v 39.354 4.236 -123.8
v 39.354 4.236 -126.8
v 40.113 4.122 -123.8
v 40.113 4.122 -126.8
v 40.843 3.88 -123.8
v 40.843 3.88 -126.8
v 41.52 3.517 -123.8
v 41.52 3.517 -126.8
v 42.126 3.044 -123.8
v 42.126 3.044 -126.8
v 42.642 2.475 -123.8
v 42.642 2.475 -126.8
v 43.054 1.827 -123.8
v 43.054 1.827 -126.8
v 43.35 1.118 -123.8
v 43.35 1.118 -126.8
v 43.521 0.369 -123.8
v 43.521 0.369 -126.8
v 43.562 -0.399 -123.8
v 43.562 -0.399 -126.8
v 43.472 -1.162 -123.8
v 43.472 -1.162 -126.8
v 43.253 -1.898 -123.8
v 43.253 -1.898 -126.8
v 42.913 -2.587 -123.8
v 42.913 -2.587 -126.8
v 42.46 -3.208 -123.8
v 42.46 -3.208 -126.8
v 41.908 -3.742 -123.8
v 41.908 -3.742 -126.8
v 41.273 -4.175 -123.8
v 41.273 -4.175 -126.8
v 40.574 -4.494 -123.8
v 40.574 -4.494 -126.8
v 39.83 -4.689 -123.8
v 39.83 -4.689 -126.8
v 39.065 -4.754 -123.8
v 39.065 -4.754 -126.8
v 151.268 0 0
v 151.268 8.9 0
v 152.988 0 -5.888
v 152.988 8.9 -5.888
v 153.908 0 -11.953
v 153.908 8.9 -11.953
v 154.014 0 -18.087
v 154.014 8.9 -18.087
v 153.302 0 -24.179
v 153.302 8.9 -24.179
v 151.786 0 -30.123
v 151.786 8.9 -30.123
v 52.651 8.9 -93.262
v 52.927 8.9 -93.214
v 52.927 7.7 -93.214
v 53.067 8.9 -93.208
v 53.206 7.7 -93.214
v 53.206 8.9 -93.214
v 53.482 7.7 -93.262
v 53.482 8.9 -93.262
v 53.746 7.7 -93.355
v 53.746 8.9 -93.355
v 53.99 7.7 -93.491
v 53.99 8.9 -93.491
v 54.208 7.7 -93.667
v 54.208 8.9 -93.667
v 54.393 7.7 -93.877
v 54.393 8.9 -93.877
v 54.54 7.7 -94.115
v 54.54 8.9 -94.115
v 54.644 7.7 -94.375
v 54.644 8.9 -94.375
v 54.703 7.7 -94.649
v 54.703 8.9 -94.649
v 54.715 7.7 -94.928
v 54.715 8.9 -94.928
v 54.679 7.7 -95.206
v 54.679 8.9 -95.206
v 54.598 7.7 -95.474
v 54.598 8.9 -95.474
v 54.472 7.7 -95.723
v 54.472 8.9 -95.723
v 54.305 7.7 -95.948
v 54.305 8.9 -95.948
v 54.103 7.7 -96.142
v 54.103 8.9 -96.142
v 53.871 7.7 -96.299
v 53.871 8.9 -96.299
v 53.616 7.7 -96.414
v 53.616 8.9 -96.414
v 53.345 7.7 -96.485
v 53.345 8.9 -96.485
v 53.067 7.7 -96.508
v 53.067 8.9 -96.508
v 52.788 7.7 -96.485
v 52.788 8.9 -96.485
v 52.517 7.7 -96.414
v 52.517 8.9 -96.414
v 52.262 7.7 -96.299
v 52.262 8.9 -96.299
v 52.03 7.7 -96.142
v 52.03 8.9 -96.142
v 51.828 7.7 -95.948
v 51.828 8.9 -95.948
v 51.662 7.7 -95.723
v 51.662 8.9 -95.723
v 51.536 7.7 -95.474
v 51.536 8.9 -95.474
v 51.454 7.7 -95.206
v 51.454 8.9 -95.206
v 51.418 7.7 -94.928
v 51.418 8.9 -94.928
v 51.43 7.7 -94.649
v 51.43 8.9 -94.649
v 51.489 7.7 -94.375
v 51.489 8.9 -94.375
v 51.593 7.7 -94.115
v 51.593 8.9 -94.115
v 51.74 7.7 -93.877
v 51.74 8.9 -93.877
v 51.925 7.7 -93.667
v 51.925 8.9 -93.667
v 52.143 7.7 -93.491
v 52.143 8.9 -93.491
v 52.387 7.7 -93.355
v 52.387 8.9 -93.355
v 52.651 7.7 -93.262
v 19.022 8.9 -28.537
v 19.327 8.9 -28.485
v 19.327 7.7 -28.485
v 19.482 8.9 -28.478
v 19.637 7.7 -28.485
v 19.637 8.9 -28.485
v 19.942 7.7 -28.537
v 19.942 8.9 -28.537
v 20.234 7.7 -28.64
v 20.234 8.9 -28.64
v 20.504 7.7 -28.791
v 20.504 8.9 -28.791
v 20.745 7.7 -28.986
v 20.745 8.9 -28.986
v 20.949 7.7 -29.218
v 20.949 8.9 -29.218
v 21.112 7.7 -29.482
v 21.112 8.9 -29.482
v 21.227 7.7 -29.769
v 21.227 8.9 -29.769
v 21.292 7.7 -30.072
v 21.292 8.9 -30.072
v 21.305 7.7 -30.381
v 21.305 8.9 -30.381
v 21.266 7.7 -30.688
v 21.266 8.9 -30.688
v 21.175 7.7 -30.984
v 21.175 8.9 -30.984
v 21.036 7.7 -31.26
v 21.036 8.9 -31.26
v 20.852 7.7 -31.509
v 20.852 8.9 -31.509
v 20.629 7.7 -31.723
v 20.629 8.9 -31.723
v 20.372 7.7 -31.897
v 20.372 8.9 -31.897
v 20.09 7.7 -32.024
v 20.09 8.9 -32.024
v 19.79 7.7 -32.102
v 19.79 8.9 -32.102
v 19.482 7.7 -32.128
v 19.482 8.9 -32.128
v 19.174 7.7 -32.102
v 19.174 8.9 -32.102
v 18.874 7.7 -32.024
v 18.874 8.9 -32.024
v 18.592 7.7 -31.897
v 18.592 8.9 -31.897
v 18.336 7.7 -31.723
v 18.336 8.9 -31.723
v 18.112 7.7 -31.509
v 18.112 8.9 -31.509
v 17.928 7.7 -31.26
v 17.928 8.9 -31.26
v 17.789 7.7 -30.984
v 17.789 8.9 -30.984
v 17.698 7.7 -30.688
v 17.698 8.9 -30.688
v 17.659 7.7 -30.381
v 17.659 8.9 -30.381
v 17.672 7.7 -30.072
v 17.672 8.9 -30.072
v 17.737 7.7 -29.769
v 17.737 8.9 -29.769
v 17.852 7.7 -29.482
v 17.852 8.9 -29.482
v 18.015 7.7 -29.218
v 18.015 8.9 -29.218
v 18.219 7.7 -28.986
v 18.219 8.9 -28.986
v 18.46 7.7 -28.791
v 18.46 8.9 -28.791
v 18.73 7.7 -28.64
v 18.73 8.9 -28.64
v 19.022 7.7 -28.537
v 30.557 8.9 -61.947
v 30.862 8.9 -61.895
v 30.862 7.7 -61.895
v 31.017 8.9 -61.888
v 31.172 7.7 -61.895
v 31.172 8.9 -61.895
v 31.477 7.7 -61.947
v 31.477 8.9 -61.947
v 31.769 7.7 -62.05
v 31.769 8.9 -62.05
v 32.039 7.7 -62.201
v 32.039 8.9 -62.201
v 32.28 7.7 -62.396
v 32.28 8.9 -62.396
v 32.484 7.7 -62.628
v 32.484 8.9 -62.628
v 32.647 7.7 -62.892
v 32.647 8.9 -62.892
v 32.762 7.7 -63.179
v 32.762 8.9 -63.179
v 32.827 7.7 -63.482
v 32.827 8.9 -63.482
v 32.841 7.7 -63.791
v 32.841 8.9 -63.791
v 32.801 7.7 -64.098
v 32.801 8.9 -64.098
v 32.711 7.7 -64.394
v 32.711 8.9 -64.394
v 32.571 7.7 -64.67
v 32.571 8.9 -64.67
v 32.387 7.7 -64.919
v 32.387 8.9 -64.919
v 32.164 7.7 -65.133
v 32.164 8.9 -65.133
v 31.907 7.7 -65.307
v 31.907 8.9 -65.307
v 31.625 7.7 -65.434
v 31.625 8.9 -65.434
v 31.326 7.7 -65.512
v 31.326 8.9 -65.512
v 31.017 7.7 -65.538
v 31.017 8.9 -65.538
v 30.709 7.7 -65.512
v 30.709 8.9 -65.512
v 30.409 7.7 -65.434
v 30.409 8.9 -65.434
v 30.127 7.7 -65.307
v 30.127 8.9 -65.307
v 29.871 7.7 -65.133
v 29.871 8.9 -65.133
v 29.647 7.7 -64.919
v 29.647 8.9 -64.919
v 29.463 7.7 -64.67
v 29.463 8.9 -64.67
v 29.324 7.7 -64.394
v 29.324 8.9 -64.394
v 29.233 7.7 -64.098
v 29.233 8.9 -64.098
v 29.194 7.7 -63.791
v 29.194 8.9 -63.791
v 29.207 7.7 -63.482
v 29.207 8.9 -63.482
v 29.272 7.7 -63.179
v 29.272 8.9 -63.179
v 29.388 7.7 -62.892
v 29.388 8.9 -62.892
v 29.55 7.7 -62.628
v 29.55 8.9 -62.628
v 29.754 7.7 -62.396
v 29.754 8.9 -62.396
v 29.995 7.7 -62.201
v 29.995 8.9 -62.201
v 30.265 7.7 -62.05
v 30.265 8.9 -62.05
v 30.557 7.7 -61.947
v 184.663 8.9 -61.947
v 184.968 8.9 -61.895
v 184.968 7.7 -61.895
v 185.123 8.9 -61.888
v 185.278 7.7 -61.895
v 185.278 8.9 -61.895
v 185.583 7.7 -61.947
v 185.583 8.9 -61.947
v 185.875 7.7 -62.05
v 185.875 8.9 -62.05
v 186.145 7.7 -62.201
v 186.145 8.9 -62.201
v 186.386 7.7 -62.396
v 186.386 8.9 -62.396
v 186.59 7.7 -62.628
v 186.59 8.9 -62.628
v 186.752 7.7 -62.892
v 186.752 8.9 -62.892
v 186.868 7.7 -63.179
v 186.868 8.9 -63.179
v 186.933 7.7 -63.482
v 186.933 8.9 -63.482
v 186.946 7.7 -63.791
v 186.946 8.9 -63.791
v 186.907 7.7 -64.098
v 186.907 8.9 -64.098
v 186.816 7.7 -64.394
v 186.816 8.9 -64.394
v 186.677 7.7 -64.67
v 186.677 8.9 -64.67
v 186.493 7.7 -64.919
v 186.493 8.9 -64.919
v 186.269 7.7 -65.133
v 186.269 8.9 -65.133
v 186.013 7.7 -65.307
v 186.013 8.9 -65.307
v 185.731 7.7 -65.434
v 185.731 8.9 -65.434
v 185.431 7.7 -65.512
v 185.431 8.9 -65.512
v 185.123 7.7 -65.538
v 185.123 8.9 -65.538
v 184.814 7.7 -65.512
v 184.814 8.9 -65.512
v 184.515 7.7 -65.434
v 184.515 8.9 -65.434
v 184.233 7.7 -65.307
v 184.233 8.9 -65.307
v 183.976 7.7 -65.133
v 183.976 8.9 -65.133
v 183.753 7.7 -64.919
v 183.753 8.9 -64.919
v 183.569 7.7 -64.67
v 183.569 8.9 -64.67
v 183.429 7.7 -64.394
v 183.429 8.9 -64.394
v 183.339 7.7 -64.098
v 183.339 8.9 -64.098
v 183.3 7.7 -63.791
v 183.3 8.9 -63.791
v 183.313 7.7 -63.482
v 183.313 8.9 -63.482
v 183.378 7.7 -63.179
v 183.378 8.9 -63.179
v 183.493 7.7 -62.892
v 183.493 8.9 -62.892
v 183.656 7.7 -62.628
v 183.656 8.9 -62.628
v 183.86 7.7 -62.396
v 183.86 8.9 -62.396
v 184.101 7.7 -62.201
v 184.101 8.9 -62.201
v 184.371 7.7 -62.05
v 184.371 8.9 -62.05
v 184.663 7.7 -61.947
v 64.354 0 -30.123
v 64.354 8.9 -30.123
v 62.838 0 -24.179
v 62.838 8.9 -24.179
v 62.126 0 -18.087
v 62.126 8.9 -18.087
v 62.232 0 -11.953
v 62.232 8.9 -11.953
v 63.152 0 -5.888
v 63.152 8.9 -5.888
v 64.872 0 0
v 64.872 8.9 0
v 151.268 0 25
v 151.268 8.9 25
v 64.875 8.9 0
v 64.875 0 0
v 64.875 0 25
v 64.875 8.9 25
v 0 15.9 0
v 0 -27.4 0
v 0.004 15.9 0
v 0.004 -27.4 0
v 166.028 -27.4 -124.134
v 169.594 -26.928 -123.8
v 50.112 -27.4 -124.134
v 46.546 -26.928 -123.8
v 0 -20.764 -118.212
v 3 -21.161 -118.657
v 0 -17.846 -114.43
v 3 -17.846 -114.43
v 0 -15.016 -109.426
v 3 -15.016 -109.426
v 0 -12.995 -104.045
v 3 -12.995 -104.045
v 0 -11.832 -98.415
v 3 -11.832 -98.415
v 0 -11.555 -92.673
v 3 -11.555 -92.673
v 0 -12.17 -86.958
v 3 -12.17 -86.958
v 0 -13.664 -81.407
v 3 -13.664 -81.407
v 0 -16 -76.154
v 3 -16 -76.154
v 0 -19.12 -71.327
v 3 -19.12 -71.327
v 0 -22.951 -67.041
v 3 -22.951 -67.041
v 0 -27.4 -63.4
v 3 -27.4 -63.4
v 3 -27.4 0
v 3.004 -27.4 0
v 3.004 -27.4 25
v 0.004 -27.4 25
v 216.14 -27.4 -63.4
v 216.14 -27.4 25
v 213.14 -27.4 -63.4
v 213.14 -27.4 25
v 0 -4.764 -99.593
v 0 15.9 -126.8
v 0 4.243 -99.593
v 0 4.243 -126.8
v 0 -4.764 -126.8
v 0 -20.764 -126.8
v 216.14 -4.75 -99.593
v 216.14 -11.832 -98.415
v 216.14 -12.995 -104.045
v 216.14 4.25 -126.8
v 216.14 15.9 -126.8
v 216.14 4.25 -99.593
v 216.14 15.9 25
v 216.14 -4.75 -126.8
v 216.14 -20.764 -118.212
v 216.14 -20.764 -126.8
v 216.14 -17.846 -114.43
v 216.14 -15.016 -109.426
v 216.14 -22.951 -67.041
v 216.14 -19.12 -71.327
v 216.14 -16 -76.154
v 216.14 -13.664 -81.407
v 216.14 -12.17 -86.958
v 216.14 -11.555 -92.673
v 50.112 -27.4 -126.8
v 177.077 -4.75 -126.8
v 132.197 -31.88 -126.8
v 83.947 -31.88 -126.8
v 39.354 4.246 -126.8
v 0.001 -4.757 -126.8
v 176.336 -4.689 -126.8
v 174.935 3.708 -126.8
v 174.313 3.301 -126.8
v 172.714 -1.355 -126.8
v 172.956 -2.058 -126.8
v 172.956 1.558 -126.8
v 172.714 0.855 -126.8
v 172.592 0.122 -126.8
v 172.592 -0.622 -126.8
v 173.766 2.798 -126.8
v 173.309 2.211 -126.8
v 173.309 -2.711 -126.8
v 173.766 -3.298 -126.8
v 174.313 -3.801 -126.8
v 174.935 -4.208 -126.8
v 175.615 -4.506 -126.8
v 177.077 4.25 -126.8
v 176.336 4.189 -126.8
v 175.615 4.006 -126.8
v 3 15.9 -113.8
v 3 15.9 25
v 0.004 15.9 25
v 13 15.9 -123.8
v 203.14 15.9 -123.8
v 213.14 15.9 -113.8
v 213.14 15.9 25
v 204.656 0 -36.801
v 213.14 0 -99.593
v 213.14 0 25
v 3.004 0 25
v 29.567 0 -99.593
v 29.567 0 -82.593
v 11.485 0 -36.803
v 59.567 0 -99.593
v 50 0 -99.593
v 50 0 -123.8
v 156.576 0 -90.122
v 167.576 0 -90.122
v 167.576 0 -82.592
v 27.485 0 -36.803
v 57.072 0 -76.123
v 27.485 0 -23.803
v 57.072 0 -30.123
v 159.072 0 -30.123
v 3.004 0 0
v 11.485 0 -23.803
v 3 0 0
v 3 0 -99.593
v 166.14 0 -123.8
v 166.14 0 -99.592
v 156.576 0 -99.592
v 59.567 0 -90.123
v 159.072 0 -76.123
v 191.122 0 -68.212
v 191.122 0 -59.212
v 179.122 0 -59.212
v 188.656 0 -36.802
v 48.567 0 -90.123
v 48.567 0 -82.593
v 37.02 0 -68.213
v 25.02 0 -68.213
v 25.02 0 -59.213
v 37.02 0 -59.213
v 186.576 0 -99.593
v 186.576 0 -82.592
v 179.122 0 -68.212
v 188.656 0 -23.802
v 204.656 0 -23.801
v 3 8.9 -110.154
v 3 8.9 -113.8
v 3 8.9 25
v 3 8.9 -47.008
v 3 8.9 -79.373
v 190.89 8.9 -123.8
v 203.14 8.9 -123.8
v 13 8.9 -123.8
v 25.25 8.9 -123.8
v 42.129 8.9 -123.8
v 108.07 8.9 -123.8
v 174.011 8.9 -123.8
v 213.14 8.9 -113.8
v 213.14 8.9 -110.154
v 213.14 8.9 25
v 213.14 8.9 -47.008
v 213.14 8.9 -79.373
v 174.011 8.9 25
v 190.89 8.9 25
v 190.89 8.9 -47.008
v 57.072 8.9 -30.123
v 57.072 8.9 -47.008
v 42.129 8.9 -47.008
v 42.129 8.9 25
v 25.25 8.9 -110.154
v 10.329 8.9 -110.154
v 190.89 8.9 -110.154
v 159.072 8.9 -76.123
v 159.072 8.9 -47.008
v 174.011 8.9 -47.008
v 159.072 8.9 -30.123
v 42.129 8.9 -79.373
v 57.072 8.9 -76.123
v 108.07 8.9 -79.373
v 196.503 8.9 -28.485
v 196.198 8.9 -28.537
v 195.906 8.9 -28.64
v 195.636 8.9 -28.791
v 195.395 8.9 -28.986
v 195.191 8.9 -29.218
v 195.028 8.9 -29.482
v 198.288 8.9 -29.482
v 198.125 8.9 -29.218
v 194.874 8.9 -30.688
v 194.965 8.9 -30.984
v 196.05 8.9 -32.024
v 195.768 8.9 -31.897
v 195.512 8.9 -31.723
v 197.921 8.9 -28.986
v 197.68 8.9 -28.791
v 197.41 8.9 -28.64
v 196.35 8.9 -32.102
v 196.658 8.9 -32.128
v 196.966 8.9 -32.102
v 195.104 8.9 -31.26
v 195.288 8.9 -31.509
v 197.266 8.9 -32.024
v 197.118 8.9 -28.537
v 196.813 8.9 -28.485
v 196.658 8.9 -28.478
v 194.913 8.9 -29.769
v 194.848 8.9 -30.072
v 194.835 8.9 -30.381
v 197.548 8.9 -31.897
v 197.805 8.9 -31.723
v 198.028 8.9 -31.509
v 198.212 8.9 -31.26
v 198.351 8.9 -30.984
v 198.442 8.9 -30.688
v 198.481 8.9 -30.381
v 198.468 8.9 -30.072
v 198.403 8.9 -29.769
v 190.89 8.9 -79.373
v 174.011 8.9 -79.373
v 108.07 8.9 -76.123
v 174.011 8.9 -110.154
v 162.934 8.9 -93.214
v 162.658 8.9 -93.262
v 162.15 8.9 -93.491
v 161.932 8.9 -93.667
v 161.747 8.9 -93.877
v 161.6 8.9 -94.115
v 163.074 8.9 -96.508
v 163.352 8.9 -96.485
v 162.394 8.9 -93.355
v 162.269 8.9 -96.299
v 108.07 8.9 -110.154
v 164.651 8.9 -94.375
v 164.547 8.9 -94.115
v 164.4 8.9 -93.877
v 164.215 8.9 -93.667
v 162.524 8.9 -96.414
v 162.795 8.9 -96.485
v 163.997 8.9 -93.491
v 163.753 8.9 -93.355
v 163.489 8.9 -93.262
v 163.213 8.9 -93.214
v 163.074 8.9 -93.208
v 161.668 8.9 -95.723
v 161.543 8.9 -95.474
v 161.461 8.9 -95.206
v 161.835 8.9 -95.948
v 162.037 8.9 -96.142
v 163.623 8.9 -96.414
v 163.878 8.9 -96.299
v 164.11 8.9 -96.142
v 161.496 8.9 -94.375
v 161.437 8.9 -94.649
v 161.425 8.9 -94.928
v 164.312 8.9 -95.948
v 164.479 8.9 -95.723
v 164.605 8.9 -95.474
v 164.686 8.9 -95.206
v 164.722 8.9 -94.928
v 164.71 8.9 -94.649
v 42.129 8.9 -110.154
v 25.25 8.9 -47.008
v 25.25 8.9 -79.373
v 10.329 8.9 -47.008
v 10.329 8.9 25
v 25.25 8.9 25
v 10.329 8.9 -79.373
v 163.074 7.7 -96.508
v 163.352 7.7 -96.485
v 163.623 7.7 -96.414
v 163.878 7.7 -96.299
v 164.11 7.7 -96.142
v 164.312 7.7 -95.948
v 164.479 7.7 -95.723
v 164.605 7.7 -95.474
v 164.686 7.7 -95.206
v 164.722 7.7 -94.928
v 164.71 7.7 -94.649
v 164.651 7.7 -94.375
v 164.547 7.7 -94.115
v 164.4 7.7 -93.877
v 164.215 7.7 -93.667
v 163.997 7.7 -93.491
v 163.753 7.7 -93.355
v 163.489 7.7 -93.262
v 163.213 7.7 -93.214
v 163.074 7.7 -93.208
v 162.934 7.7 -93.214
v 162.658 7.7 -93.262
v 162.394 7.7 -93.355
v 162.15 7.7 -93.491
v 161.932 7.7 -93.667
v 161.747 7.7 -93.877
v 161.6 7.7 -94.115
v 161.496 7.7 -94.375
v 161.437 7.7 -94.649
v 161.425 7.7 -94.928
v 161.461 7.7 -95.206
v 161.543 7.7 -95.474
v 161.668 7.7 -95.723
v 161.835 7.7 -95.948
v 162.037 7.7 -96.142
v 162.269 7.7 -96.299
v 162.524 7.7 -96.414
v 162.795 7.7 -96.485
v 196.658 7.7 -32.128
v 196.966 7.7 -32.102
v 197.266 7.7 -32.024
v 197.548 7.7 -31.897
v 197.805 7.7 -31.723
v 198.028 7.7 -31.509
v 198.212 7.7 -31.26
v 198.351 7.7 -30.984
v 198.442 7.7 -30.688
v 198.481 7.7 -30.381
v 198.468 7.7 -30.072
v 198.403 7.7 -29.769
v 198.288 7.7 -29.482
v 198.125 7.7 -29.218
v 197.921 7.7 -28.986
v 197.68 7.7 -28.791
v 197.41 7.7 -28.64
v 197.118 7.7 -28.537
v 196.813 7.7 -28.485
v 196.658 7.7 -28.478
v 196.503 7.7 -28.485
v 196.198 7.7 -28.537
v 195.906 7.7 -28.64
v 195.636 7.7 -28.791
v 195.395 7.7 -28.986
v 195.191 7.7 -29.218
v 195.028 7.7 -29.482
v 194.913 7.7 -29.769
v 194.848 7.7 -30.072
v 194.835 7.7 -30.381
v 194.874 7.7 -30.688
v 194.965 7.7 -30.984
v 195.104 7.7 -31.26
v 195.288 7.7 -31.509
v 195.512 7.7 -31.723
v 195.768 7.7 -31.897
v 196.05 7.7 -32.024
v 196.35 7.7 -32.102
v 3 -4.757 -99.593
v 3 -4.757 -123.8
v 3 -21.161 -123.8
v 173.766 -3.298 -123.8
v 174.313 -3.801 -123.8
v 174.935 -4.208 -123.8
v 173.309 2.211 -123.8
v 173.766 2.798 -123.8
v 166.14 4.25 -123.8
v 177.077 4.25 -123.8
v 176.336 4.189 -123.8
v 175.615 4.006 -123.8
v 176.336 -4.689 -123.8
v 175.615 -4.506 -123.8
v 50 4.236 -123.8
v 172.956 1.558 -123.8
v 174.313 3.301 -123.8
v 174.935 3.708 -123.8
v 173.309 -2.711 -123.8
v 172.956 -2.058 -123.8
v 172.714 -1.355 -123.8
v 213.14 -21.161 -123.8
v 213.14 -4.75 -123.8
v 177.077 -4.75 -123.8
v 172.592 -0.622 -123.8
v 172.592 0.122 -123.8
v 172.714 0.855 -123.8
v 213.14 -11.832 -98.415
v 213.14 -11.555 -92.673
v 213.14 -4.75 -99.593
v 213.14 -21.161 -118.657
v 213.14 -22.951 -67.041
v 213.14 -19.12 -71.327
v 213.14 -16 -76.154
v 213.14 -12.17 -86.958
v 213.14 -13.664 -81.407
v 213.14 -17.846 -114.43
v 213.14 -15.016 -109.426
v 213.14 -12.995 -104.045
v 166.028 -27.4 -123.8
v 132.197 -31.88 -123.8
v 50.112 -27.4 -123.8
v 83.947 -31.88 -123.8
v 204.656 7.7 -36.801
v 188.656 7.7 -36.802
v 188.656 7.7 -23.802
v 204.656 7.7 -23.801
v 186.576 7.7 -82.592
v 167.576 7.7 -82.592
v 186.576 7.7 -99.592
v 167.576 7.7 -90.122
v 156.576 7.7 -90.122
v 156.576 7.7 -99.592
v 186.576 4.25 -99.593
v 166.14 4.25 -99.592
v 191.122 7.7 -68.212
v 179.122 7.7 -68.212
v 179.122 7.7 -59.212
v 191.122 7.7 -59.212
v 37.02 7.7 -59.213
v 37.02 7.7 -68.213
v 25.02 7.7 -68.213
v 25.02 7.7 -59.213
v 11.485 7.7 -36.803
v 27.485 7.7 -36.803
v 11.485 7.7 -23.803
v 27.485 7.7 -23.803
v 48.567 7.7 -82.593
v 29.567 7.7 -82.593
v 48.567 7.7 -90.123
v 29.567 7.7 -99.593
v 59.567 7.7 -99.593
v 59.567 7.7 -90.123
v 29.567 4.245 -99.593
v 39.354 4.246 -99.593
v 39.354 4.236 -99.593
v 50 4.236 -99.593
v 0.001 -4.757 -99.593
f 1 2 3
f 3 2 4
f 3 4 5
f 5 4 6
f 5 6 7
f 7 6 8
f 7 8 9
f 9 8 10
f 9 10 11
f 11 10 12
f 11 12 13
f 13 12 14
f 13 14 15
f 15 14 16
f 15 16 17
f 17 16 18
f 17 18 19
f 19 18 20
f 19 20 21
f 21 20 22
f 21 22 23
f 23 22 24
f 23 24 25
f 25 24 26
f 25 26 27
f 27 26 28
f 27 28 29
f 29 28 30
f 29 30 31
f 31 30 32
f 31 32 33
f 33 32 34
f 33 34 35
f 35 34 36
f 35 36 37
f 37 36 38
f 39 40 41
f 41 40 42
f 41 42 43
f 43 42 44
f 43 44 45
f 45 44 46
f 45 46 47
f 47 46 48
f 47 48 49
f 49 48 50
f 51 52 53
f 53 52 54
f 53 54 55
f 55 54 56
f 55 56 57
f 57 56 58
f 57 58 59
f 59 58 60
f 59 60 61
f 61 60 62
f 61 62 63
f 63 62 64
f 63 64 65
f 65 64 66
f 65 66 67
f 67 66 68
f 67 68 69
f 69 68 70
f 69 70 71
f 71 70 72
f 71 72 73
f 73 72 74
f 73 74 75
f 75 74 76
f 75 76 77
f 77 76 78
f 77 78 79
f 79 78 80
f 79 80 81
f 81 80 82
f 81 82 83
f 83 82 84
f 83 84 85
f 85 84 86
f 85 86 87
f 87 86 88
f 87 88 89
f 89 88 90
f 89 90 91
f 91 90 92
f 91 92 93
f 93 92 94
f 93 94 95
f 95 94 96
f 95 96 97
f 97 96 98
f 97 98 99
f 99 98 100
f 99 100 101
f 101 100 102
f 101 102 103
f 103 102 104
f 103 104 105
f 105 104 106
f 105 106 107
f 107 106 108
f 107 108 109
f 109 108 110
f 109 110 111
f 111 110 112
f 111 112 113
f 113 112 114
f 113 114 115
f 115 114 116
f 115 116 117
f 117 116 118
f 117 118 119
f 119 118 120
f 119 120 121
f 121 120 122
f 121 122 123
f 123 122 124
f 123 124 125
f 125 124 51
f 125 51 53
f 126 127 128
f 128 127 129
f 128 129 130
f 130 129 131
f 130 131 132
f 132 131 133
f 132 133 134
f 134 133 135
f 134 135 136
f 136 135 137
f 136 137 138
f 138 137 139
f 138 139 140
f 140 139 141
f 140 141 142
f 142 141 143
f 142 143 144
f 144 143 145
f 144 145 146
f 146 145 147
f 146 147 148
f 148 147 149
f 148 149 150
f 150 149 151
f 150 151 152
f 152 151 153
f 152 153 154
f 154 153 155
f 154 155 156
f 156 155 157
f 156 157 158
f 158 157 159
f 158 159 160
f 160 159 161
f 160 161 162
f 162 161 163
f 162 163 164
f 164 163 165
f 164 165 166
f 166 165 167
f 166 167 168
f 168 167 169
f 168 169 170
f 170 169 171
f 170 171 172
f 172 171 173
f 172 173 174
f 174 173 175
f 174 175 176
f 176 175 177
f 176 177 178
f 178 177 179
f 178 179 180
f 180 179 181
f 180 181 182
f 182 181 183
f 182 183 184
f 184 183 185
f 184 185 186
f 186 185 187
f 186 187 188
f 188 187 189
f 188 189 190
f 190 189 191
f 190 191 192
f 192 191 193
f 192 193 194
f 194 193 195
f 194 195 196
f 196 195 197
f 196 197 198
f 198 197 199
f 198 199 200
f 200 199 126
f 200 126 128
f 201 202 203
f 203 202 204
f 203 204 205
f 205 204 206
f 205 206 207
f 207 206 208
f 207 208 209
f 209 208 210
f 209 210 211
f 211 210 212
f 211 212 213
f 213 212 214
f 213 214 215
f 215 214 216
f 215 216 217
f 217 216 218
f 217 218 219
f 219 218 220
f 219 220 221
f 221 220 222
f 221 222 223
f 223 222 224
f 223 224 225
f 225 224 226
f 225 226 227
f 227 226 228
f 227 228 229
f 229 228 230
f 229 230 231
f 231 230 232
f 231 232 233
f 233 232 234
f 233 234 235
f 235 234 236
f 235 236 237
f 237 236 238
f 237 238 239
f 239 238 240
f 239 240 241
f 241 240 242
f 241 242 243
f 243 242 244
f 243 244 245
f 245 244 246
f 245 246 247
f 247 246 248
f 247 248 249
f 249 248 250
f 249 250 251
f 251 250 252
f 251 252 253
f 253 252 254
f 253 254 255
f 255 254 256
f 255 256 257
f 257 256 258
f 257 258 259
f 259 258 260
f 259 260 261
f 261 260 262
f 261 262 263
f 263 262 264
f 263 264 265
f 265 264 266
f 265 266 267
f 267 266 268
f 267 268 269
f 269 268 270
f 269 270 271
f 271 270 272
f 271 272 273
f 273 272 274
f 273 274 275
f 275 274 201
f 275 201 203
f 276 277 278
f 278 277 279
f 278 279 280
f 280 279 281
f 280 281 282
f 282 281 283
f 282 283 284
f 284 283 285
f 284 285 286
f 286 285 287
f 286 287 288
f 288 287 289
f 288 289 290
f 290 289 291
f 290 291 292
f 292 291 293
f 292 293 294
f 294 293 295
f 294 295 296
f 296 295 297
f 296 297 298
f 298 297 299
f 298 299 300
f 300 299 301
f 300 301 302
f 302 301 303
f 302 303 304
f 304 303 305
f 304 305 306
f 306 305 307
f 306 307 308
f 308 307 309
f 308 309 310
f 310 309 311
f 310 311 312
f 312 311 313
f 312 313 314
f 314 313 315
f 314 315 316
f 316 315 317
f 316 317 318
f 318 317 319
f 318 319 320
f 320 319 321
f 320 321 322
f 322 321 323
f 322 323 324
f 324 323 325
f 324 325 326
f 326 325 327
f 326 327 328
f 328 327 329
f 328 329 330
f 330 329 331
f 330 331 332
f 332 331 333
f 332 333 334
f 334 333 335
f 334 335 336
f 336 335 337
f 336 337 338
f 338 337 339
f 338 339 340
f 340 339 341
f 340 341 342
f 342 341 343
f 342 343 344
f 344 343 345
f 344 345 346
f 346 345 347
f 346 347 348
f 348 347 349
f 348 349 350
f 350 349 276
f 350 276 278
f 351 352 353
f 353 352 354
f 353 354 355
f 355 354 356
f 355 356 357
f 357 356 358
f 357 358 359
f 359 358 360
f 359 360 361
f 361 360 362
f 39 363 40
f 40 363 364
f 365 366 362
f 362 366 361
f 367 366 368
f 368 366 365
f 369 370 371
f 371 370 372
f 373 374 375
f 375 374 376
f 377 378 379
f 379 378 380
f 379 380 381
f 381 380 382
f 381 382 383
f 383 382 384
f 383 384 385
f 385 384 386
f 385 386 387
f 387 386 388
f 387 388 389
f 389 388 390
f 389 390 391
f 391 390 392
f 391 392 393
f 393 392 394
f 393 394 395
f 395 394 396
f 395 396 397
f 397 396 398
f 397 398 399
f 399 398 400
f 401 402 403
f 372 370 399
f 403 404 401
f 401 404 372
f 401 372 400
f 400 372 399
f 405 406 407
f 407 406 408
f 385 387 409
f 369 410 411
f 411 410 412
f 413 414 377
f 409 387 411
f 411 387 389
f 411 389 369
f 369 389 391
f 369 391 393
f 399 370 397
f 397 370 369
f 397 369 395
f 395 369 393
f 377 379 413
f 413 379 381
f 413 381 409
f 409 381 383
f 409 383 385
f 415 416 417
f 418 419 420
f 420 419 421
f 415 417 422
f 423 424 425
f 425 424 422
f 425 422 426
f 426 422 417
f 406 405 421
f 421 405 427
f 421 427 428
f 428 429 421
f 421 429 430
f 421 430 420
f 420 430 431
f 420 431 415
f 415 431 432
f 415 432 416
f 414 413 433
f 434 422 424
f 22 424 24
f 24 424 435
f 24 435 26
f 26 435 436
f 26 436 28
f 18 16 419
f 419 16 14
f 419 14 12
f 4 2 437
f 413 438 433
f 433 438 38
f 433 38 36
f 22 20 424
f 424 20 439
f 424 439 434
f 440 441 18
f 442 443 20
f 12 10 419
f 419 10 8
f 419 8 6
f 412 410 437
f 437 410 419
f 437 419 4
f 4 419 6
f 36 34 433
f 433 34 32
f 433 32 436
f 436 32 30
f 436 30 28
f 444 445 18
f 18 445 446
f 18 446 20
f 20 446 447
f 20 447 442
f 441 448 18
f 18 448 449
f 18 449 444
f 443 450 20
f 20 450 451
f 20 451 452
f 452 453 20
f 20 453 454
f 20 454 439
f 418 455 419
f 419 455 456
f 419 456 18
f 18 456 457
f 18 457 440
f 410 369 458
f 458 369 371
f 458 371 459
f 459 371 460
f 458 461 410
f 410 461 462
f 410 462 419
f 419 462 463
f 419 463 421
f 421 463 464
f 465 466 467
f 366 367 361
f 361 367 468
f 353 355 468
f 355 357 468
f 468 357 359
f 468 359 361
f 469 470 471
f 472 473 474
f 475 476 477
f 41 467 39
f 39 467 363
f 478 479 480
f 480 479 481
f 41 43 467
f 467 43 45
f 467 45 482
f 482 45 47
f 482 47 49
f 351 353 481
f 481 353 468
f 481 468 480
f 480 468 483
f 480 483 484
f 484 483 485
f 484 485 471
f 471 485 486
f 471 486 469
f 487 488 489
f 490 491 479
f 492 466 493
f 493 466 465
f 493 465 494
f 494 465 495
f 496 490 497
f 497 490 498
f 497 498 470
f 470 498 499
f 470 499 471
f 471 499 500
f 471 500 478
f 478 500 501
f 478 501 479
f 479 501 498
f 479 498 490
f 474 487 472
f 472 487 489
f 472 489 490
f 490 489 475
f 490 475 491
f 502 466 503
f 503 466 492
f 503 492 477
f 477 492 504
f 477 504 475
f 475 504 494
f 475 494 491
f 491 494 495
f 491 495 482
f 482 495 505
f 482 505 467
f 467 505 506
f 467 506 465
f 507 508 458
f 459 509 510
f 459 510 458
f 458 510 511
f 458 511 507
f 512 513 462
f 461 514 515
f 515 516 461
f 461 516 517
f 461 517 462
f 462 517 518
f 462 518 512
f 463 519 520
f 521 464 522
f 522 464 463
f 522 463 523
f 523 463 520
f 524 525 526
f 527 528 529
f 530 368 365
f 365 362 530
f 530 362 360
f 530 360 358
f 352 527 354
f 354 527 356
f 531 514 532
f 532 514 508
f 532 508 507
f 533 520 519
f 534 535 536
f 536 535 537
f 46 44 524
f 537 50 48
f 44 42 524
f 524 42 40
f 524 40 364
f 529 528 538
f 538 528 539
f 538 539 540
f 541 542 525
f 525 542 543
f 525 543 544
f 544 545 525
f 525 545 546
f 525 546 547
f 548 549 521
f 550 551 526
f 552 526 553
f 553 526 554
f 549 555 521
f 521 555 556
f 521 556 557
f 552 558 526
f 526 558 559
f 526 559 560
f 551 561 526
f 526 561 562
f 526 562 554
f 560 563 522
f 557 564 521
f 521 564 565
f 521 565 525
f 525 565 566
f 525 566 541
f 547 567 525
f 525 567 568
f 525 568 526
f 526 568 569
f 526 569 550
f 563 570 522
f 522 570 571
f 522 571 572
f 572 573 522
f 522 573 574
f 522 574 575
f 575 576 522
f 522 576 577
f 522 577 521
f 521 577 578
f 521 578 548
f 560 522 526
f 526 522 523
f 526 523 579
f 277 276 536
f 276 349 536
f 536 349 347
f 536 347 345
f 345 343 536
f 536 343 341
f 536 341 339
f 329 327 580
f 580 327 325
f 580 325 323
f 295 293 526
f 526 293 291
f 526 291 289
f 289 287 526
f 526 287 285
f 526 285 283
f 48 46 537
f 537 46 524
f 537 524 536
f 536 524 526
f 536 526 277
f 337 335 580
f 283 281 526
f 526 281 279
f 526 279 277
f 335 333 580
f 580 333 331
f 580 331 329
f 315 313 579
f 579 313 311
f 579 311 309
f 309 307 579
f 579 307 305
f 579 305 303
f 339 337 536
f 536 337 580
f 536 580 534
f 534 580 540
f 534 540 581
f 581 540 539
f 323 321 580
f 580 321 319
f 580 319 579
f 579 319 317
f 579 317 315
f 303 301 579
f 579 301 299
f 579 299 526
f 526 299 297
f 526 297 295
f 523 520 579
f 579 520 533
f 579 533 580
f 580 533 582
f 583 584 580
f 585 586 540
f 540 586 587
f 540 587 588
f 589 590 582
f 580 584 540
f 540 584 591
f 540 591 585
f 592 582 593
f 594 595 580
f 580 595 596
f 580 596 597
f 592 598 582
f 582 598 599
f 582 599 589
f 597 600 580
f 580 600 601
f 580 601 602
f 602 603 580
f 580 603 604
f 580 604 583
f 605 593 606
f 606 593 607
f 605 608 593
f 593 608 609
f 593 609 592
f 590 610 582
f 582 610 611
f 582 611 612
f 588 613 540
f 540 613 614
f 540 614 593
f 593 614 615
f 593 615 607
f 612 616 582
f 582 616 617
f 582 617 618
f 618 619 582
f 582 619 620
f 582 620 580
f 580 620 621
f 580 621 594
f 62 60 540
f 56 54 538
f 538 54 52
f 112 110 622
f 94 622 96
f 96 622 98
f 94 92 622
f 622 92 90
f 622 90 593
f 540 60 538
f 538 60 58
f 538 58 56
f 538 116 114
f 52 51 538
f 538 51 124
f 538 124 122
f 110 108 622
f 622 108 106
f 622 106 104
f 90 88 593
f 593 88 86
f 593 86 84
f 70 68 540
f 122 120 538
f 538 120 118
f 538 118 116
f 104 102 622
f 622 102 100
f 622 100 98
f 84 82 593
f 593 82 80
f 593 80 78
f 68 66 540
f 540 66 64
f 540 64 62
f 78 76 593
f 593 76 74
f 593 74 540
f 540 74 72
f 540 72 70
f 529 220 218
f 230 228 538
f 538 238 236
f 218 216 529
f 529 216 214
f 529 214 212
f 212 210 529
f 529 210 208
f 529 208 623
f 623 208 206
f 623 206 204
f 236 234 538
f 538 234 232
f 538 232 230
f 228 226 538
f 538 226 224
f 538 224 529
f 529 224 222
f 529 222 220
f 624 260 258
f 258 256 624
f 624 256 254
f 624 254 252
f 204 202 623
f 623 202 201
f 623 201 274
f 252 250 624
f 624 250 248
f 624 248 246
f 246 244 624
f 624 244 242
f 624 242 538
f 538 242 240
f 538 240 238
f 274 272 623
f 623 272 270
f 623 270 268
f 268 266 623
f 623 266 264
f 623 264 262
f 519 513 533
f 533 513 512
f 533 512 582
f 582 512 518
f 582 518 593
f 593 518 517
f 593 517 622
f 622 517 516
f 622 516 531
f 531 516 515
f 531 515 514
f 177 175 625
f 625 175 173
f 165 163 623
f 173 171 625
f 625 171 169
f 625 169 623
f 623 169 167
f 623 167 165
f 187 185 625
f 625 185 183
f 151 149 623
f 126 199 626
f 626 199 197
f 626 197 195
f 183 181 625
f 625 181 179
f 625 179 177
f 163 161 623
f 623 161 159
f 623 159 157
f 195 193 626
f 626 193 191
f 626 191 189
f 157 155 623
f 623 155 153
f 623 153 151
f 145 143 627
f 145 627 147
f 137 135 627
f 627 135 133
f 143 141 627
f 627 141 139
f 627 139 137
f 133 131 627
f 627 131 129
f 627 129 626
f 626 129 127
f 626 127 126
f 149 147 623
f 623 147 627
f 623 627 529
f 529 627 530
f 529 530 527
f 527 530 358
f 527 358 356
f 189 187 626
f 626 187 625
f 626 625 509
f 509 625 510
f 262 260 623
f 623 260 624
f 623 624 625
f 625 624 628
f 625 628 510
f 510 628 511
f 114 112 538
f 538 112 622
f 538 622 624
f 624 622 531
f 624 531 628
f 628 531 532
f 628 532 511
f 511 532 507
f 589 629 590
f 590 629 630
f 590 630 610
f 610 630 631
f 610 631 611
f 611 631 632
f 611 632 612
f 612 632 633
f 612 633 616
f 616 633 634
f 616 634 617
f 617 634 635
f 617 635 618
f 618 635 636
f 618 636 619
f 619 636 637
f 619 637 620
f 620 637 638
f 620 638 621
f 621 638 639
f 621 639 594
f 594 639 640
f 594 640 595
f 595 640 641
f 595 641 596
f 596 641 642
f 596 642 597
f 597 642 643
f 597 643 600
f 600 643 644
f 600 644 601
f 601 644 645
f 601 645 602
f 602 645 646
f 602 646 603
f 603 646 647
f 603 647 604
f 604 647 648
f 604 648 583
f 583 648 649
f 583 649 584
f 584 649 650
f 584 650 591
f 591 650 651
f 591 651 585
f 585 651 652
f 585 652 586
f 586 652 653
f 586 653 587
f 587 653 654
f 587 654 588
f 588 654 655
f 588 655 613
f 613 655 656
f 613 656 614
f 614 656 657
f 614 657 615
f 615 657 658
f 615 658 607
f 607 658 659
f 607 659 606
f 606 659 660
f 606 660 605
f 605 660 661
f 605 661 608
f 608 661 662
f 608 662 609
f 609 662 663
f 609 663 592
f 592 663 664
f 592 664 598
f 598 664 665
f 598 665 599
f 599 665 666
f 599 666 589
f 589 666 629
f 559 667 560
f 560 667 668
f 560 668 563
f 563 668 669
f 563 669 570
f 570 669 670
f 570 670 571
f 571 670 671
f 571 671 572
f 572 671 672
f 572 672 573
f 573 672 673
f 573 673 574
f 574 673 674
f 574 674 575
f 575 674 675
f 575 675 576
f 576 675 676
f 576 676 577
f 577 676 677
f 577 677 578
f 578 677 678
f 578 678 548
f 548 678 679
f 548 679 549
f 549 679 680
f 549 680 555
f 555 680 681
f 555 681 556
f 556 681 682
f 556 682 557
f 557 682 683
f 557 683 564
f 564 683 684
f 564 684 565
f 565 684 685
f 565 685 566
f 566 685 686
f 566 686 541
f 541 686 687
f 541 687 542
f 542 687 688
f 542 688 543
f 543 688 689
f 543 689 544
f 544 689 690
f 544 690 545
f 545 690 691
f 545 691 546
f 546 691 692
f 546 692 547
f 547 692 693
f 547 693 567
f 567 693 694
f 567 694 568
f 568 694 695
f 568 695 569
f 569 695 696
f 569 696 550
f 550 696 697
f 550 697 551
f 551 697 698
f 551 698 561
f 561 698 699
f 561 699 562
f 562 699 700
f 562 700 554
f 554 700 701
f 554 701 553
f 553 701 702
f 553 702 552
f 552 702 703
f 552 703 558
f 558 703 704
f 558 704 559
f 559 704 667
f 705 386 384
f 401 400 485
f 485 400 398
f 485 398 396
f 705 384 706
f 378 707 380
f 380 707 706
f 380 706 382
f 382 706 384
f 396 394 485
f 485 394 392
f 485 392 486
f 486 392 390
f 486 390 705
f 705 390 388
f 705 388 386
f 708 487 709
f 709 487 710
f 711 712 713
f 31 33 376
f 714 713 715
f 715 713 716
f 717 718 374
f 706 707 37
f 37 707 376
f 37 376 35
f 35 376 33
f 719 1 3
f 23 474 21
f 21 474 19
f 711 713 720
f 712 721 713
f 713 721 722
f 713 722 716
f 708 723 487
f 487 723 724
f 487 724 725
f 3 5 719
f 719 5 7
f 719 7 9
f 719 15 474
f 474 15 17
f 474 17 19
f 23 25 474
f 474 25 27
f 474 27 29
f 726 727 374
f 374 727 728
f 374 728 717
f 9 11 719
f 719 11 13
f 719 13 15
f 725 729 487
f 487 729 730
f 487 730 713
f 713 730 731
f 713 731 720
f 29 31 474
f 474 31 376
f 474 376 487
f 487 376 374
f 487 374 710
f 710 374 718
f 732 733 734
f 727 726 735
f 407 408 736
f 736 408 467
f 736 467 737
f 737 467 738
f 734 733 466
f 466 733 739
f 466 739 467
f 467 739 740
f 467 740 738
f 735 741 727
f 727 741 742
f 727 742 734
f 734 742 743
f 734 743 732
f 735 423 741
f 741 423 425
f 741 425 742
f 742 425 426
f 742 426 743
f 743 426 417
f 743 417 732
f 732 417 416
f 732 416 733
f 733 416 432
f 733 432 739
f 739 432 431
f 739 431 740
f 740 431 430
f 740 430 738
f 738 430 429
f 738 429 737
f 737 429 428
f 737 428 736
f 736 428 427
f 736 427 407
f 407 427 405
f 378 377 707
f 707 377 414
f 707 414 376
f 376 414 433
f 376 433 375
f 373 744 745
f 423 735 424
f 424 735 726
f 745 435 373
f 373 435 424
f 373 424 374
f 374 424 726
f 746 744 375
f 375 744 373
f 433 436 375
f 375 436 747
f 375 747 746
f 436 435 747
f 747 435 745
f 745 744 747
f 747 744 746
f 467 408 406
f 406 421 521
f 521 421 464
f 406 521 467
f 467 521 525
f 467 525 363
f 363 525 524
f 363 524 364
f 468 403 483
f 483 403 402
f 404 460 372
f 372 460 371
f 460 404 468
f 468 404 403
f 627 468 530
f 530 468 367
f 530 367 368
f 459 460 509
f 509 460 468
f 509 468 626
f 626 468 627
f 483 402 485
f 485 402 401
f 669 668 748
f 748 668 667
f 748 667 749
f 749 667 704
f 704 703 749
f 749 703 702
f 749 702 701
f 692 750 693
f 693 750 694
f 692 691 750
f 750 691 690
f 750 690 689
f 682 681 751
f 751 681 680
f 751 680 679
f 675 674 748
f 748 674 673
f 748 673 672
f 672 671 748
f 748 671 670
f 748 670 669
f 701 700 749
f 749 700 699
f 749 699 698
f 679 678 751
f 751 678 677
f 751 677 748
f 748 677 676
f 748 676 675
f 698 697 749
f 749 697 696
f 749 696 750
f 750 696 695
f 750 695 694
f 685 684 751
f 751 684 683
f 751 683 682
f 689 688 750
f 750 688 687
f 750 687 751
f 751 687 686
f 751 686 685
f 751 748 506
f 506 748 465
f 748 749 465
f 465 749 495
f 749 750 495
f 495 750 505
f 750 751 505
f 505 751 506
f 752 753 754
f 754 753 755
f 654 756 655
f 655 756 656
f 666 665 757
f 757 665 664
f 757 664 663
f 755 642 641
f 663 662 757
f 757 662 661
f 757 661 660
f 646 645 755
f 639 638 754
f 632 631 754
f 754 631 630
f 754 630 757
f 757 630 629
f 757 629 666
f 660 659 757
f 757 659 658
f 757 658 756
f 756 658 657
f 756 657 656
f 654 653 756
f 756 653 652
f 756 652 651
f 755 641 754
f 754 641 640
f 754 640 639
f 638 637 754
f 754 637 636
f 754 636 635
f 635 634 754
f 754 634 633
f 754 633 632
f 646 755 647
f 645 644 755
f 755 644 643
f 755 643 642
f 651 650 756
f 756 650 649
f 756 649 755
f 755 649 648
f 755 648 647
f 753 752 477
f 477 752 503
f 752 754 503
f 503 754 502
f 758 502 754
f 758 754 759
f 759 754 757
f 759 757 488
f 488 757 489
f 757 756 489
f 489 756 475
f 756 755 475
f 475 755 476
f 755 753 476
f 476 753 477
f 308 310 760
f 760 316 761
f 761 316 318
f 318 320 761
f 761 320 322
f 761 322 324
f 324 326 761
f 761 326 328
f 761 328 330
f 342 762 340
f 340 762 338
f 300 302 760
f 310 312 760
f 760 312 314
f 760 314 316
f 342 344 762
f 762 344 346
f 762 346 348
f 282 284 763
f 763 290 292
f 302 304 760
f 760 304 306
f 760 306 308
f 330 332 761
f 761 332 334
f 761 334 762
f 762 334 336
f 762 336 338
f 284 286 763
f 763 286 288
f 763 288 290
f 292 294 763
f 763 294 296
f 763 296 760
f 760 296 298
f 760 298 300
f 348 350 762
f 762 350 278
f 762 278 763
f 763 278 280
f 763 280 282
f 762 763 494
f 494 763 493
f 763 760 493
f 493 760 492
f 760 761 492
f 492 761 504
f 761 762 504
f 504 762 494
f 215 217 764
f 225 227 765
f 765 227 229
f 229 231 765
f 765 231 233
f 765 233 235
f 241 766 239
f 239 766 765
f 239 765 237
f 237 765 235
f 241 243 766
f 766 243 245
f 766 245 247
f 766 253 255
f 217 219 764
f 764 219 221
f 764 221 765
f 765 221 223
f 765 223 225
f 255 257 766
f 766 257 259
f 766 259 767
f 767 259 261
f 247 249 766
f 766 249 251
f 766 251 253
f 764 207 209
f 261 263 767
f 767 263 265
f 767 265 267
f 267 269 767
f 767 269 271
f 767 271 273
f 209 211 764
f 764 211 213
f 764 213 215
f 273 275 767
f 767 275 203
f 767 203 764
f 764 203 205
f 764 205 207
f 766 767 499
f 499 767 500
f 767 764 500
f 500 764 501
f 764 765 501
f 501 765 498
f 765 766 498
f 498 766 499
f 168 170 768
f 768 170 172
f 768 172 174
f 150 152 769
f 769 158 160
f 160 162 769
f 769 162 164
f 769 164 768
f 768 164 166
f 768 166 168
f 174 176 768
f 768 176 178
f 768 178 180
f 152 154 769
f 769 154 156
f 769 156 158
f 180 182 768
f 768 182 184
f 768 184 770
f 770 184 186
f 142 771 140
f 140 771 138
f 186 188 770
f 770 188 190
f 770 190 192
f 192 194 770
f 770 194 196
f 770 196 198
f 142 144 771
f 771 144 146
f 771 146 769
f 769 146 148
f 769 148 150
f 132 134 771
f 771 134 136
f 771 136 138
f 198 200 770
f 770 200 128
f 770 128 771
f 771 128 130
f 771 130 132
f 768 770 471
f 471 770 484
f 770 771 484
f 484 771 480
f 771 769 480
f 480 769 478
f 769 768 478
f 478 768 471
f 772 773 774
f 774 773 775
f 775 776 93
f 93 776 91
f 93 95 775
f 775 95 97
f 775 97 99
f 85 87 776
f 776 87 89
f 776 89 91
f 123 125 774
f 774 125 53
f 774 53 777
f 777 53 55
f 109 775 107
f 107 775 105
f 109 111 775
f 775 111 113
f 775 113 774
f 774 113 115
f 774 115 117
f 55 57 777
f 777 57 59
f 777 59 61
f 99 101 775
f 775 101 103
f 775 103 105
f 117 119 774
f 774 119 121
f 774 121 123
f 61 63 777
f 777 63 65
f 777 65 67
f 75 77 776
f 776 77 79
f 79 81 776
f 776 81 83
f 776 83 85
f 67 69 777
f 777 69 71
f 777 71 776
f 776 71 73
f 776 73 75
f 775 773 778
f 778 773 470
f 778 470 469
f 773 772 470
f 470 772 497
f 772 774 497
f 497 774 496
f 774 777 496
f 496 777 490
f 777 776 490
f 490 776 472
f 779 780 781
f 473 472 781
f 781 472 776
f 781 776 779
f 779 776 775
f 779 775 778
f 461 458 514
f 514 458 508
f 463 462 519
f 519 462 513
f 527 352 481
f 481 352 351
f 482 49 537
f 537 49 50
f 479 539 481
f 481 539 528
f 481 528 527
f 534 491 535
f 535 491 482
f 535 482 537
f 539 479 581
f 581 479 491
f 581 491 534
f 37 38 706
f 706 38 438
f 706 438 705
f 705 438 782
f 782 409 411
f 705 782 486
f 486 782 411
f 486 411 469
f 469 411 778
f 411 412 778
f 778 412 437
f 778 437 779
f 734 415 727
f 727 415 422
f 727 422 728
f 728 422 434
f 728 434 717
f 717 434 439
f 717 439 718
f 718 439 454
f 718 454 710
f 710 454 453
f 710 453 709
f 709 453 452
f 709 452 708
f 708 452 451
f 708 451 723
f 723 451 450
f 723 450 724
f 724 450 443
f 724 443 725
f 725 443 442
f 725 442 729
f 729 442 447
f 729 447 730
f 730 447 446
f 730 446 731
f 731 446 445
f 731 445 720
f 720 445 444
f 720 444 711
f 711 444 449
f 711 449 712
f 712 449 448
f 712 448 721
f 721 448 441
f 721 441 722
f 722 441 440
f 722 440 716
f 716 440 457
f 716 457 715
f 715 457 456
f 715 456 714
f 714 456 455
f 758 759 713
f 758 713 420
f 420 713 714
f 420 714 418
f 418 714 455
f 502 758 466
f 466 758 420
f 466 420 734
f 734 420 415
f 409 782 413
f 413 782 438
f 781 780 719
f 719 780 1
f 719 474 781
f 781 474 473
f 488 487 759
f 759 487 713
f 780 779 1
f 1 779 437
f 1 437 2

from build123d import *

# Parameters (mm, degrees)
CROQUIS1_W              = 216.14
CROQUIS1_H              = 126.8
SALIENTE_EXTRUIR1_DEPTH = 15.9
CROQUIS5_W              = 210.14
CROQUIS5_H              = 120.8
CORTAR_EXTRUIR2_DEPTH   = 7
CROQUIS3_R              = 46
CORTAR_EXTRUIR1_DEPTH   = 252.092711165
CROQUIS6_R              = 1.825
CROQUIS6_R_2            = 1.65
CORTAR_EXTRUIR3_DEPTH   = 252.092711165
SALIENTE_EXTRUIR2_DEPTH = 27.4
CORTAR_EXTRUIR4_DEPTH   = 253.082327028
CORTAR_EXTRUIR5_DEPTH   = 10
SALIENTE_EXTRUIR3_REACH = 254.082
SALIENTE_EXTRUIR4_DEPTH = 25
CROQUIS13_W             = 61.875090743
CROQUIS13_H             = 28
CORTAR_EXTRUIR7_DEPTH   = 7
CROQUIS16_W             = 12
CROQUIS16_H             = 9
CROQUIS16_W_2           = 16
CROQUIS16_H_2           = 13
CORTAR_EXTRUIR8_DEPTH   = 7.7
CHAFL_N1_SIZE           = 10
CROQUIS21_W             = 102
CROQUIS21_H             = 46
CORTAR_EXTRUIR10_DEPTH  = 253.608539048
CORTAR_EXTRUIR11_REACH  = 268.038
CROQUIS23_W             = 27.206677637
CROQUIS23_H             = 8.999999982
CORTAR_EXTRUIR12_DEPTH  = 253.607680361
CROQUIS25_W             = 24.206677637
CROQUIS25_H             = 4.236354688
CORTAR_EXTRUIR16_DEPTH  = 50
CROQUIS26_W             = 24.206677637
CROQUIS26_H             = 4.25
CORTAR_EXTRUIR17_DEPTH  = 50
CROQUIS31_W             = 20.435797251
CROQUIS31_H             = 32.708240737
CORTAR_EXTRUIR19_DEPTH  = 4.25
CORTAR_EXTRUIR20_REACH  = 255.179
CROQUIS32_W             = 39.355076343
CROQUIS32_H             = 27.206677637


with BuildPart() as part:
    # Croquis1 → Saliente-Extruir1 (new body)
    with BuildSketch(Plane(origin=(0, 0, 0), x_dir=(1, 0, 0), z_dir=(0, 1, 0))):
        with Locations((108.07, 63.4)):
            Rectangle(CROQUIS1_W, CROQUIS1_H)
    extrude(amount=SALIENTE_EXTRUIR1_DEPTH)

    # Croquis5 → Cortar-Extruir2 (cut)
    with BuildSketch(Plane(origin=(0, 15.9, 0), x_dir=(1, 0, 0), z_dir=(0, 1, 0))):
        with Locations((108.07, 63.4)):
            Rectangle(CROQUIS5_W, CROQUIS5_H)
    extrude(amount=-CORTAR_EXTRUIR2_DEPTH, mode=Mode.SUBTRACT)

    # Croquis3 → Cortar-Extruir1 (cut, through all)
    with BuildSketch(Plane(origin=(0, 15.9, 0), x_dir=(1, 0, 0), z_dir=(0, 1, 0))):
        with Locations((108.07, 15.808005153)):
            Circle(CROQUIS3_R)
    extrude(amount=-CORTAR_EXTRUIR1_DEPTH, mode=Mode.SUBTRACT)

    # Croquis6 → Cortar-Extruir3 (cut, through all)
    with BuildSketch(Plane(origin=(0, 0, 0), x_dir=(-1, 0, 0), z_dir=(0, -1, 0))):
        with Locations(Location((-196.658016439, 30.303322363, 0), (0, 0, 90))):
            Circle(CROQUIS6_R)
        with Locations(Location((-185.122851299, 63.713322363, 0), (0, 0, 90))):
            Circle(CROQUIS6_R)
        with Locations(Location((-31.017148701, 63.713322363, 0), (0, 0, 270))):
            Circle(CROQUIS6_R)
        with Locations(Location((-19.481983561, 30.303322363, 0), (0, 0, 270))):
            Circle(CROQUIS6_R)
        with Locations(Location((-53.066508219, 94.858322363, 0), (0, 0, 90))):
            Circle(CROQUIS6_R_2)
        with Locations(Location((-163.073491781, 94.858322363, 0), (0, 0, 270))):
            Circle(CROQUIS6_R_2)
    extrude(amount=-CORTAR_EXTRUIR3_DEPTH, mode=Mode.SUBTRACT)

    # Croquis7 → Saliente-Extruir2 (add)
    with BuildSketch(Plane.XZ):
        Polygon((216.14, 0), (213.14, 0), (213.14, -123.8), (3, -123.8), (3, 0), (0, 0), (0, -126.8), (216.14, -126.8), align=None)
    extrude(amount=SALIENTE_EXTRUIR2_DEPTH)

    # Croquis8 → Cortar-Extruir4 (cut, through all)
    with BuildSketch(Plane(origin=(216.14, 0, 0), x_dir=(0, 0, -1), z_dir=(1, 0, 0))):
        with BuildLine():
            Line((124.134269168, -27.4), (63.4, -27.4))
            ThreePointArc((63.4, -27.4), (93.767134584, -11.538522587), (124.134269168, -27.4))
        make_face()
    extrude(amount=-CORTAR_EXTRUIR4_DEPTH, mode=Mode.SUBTRACT)

    # Croquis9 → Cortar-Extruir5 (cut)
    with BuildSketch(Plane(origin=(0, 0, -126.8), x_dir=(-1, 0, 0), z_dir=(0, 0, -1))):
        Polygon((-216.14, -20.764005722), (-166.027655823, -27.4), (-216.14, -27.4), align=None)
        Polygon((-50.112344177, -27.4), (0, -27.4), (0, -20.764005722), align=None)
    extrude(amount=-CORTAR_EXTRUIR5_DEPTH, mode=Mode.SUBTRACT)

    # Saliente-Extruir3: up to this face of the body (flat: up to its plane)
    saliente_extruir3_end = Plane(part.part.faces().sort_by_distance((108.07, -12.927901237, -123.8))[0])
    # Croquis10 → Saliente-Extruir3 (add, up to the picked face)
    with BuildSketch(Plane(origin=(0, 0, -126.8), x_dir=(-1, 0, 0), z_dir=(0, 0, -1)), mode=Mode.PRIVATE) as saliente_extruir3_sk1:
        Polygon((-166.027655823, -27.4), (-132.196508219, -31.88), (-83.946508219, -31.88), (-50.112344177, -27.4), align=None)
    saliente_extruir3_tool1 = split(extrude(saliente_extruir3_sk1.sketch, amount=-SALIENTE_EXTRUIR3_REACH, mode=Mode.PRIVATE), bisect_by=saliente_extruir3_end, keep=Keep.BOTH, mode=Mode.PRIVATE)
    add(saliente_extruir3_tool1.solids().sort_by(Axis((108.070651, -29.332241, -126.8), (0, 0, 1)))[0])

    # Croquis11 → Saliente-Extruir4 (add)
    with BuildSketch(Plane.XY):
        Polygon((151.268460309, 15.9), (151.268460309, 0), (213.14, 0), (213.14, -27.4), (216.14, -27.4), (216.14, 15.9), align=None)
        Polygon((0.003551053, -27.4), (0.003551053, 15.9), (64.875090743, 15.9), (64.875090743, 0), (3.003551053, 0), (3.003551053, -27.4), align=None)
    extrude(amount=SALIENTE_EXTRUIR4_DEPTH)

    # Croquis13 → Cortar-Extruir7 (cut)
    with BuildSketch(Plane(origin=(0, 15.9, 0), x_dir=(1, 0, 0), z_dir=(0, 1, 0))):
        with Locations((33.937545372, -11)):
            Rectangle(CROQUIS13_W, CROQUIS13_H)
        with Locations((182.202454628, -11)):
            Rectangle(CROQUIS13_W, CROQUIS13_H)
    extrude(amount=-CORTAR_EXTRUIR7_DEPTH, mode=Mode.SUBTRACT)

    # Croquis16 → Cortar-Extruir8 (cut)
    with BuildSketch(Plane.XZ):
        with Locations((31.02016514, -63.713322363)):
            Rectangle(CROQUIS16_W, CROQUIS16_H)
        with Locations((19.485, -30.303322363)):
            Rectangle(CROQUIS16_W_2, CROQUIS16_H_2)
        Polygon((186.575628008, -82.591759265), (186.575966494, -99.591759262), (156.5759665, -99.592356589), (156.575777943, -90.122356591), (167.575777941, -90.122137571), (167.575628012, -82.592137572), align=None)
        Polygon((191.121505569, -59.211668748), (191.121684768, -68.211668746), (179.12168477, -68.211907677), (179.121505572, -59.211907679), align=None)
        Polygon((204.656224503, -36.801399255), (188.656224506, -36.801717829), (188.655965664, -23.801717832), (204.655965661, -23.801399257), align=None)
        Polygon((29.566508219, -99.593322363), (59.566508219, -99.593322363), (59.566508219, -90.123322363), (48.566508219, -90.123322363), (48.566508219, -82.593322363), (29.566508219, -82.593322363), align=None)
    extrude(amount=-CORTAR_EXTRUIR8_DEPTH, mode=Mode.SUBTRACT)

    # Chaflán1
    chafl_n1_edges = [part.edges().sort_by_distance(p)[0] for p in [
        (3, 12.4, -123.8),
        (213.14, 12.4, -123.8),
    ]]
    chamfer(chafl_n1_edges, length=CHAFL_N1_SIZE)

    # Croquis21 → Cortar-Extruir10 (cut, through all)
    with BuildSketch(Plane.XZ):
        with Locations((108.071569823, -53.123322363)):
            Rectangle(CROQUIS21_W, CROQUIS21_H)
    extrude(amount=-CORTAR_EXTRUIR10_DEPTH, mode=Mode.SUBTRACT)

    # Cortar-Extruir11: up to this face of the body (flat: up to its plane)
    cortar_extruir11_end = Plane(part.part.faces().sort_by_distance((44.566508219, 3.85, -99.593322363))[0])
    # Croquis22 → Cortar-Extruir11 (cut, up to the picked face)
    with BuildSketch(Plane(origin=(0, 0, -126.8), x_dir=(-1, 0, 0), z_dir=(0, 0, -1)), mode=Mode.PRIVATE) as cortar_extruir11_sk1:
        with BuildLine():
            Line((-177.076508219, 4.25), (-216.14, 4.25))
            Line((-216.14, 4.25), (-216.14, -4.75))
            Line((-216.14, -4.75), (-177.076508219, -4.75))
            ThreePointArc((-177.076508219, -4.75), (-172.576508219, -0.25), (-177.076508219, 4.25))
        make_face()
    cortar_extruir11_tool1 = split(extrude(cortar_extruir11_sk1.sketch, amount=-CORTAR_EXTRUIR11_REACH, mode=Mode.PRIVATE), bisect_by=cortar_extruir11_end, keep=Keep.BOTH, mode=Mode.PRIVATE)
    # Croquis22 → Cortar-Extruir11 (cut, up to the picked face)
    with BuildSketch(Plane(origin=(0, 0, -126.8), x_dir=(-1, 0, 0), z_dir=(0, 0, -1)), mode=Mode.PRIVATE) as cortar_extruir11_sk2:
        with BuildLine():
            Line((-0.001303888, -4.756822615), (-39.06479559, -4.754356466))
            ThreePointArc((-39.06479559, -4.754356466), (-43.564511488, -0.254072381), (-39.064227404, 4.245643517))
            Line((-39.064227404, 4.245643517), (-0.000735701, 4.243177367))
            Line((-0.000735701, 4.243177367), (-0.001303888, -4.756822615))
        make_face()
    cortar_extruir11_tool2 = split(extrude(cortar_extruir11_sk2.sketch, amount=-CORTAR_EXTRUIR11_REACH, mode=Mode.PRIVATE), bisect_by=cortar_extruir11_end, keep=Keep.BOTH, mode=Mode.PRIVATE)
    add(cortar_extruir11_tool1.solids().sort_by(Axis((194.829267, -0.25, -126.8), (0, 0, 1)))[0], mode=Mode.SUBTRACT)
    add(cortar_extruir11_tool2.solids().sort_by(Axis((21.311752, -0.255477, -126.8), (0, 0, 1)))[0], mode=Mode.SUBTRACT)

    # Croquis23 → Cortar-Extruir12 (cut, through all)
    with BuildSketch(Plane(origin=(0.001003581, 6.3e-08, 0), x_dir=(0, 0, -1), z_dir=(0.9999999980071865, 6.3131823435647e-05, 0))):
        with Locations((113.196661182, -0.263645312)):
            Rectangle(CROQUIS23_W, CROQUIS23_H)
    extrude(amount=-CORTAR_EXTRUIR12_DEPTH, mode=Mode.SUBTRACT)

    # Croquis25 → Cortar-Extruir16 (cut)
    with BuildSketch(Plane.ZY):
        with Locations((-111.696661182, 2.118177344)):
            Rectangle(CROQUIS25_W, CROQUIS25_H)
    extrude(amount=-CORTAR_EXTRUIR16_DEPTH, mode=Mode.SUBTRACT)

    # Croquis26 → Cortar-Extruir17 (cut)
    with BuildSketch(Plane(origin=(216.14, 0, 0), x_dir=(0, 0, -1), z_dir=(1, 0, 0))):
        with Locations((111.696661182, 2.125)):
            Rectangle(CROQUIS26_W, CROQUIS26_H)
    extrude(amount=-CORTAR_EXTRUIR17_DEPTH, mode=Mode.SUBTRACT)

    # Croquis31 → Cortar-Extruir19 (cut)
    with BuildSketch(Plane.XZ):
        with Locations((176.357898626, -107.445879632)):
            Rectangle(CROQUIS31_W, CROQUIS31_H)
    extrude(amount=-CORTAR_EXTRUIR19_DEPTH, mode=Mode.SUBTRACT)

    # Cortar-Extruir20: up to this face of the body (flat: up to its plane)
    cortar_extruir20_end = Plane(part.part.faces().sort_by_distance((44.676749051, 4.236354688, -111.696661182))[0])
    # Croquis32 → Cortar-Extruir20 (cut, up to the picked face)
    with BuildSketch(Plane(origin=(-0.00026788, 4.243177304, 0), x_dir=(0.9999999980071865, 6.313182343619669e-05, 0), z_dir=(6.313182343619669e-05, -0.9999999980071865, 0)), mode=Mode.PRIVATE) as cortar_extruir20_sk1:
        with Locations((19.676227302, -113.196661182)):
            Rectangle(CROQUIS32_W, CROQUIS32_H)
    cortar_extruir20_tool1 = split(extrude(cortar_extruir20_sk1.sketch, amount=CORTAR_EXTRUIR20_REACH, mode=Mode.PRIVATE), bisect_by=cortar_extruir20_end, keep=Keep.BOTH, mode=Mode.PRIVATE)
    add(cortar_extruir20_tool1.solids().sort_by(Axis((19.675959, 4.244419, -113.196661), (6.313182343619669e-05, -0.9999999980071865, 0)))[0], mode=Mode.SUBTRACT)


solid = part.part
